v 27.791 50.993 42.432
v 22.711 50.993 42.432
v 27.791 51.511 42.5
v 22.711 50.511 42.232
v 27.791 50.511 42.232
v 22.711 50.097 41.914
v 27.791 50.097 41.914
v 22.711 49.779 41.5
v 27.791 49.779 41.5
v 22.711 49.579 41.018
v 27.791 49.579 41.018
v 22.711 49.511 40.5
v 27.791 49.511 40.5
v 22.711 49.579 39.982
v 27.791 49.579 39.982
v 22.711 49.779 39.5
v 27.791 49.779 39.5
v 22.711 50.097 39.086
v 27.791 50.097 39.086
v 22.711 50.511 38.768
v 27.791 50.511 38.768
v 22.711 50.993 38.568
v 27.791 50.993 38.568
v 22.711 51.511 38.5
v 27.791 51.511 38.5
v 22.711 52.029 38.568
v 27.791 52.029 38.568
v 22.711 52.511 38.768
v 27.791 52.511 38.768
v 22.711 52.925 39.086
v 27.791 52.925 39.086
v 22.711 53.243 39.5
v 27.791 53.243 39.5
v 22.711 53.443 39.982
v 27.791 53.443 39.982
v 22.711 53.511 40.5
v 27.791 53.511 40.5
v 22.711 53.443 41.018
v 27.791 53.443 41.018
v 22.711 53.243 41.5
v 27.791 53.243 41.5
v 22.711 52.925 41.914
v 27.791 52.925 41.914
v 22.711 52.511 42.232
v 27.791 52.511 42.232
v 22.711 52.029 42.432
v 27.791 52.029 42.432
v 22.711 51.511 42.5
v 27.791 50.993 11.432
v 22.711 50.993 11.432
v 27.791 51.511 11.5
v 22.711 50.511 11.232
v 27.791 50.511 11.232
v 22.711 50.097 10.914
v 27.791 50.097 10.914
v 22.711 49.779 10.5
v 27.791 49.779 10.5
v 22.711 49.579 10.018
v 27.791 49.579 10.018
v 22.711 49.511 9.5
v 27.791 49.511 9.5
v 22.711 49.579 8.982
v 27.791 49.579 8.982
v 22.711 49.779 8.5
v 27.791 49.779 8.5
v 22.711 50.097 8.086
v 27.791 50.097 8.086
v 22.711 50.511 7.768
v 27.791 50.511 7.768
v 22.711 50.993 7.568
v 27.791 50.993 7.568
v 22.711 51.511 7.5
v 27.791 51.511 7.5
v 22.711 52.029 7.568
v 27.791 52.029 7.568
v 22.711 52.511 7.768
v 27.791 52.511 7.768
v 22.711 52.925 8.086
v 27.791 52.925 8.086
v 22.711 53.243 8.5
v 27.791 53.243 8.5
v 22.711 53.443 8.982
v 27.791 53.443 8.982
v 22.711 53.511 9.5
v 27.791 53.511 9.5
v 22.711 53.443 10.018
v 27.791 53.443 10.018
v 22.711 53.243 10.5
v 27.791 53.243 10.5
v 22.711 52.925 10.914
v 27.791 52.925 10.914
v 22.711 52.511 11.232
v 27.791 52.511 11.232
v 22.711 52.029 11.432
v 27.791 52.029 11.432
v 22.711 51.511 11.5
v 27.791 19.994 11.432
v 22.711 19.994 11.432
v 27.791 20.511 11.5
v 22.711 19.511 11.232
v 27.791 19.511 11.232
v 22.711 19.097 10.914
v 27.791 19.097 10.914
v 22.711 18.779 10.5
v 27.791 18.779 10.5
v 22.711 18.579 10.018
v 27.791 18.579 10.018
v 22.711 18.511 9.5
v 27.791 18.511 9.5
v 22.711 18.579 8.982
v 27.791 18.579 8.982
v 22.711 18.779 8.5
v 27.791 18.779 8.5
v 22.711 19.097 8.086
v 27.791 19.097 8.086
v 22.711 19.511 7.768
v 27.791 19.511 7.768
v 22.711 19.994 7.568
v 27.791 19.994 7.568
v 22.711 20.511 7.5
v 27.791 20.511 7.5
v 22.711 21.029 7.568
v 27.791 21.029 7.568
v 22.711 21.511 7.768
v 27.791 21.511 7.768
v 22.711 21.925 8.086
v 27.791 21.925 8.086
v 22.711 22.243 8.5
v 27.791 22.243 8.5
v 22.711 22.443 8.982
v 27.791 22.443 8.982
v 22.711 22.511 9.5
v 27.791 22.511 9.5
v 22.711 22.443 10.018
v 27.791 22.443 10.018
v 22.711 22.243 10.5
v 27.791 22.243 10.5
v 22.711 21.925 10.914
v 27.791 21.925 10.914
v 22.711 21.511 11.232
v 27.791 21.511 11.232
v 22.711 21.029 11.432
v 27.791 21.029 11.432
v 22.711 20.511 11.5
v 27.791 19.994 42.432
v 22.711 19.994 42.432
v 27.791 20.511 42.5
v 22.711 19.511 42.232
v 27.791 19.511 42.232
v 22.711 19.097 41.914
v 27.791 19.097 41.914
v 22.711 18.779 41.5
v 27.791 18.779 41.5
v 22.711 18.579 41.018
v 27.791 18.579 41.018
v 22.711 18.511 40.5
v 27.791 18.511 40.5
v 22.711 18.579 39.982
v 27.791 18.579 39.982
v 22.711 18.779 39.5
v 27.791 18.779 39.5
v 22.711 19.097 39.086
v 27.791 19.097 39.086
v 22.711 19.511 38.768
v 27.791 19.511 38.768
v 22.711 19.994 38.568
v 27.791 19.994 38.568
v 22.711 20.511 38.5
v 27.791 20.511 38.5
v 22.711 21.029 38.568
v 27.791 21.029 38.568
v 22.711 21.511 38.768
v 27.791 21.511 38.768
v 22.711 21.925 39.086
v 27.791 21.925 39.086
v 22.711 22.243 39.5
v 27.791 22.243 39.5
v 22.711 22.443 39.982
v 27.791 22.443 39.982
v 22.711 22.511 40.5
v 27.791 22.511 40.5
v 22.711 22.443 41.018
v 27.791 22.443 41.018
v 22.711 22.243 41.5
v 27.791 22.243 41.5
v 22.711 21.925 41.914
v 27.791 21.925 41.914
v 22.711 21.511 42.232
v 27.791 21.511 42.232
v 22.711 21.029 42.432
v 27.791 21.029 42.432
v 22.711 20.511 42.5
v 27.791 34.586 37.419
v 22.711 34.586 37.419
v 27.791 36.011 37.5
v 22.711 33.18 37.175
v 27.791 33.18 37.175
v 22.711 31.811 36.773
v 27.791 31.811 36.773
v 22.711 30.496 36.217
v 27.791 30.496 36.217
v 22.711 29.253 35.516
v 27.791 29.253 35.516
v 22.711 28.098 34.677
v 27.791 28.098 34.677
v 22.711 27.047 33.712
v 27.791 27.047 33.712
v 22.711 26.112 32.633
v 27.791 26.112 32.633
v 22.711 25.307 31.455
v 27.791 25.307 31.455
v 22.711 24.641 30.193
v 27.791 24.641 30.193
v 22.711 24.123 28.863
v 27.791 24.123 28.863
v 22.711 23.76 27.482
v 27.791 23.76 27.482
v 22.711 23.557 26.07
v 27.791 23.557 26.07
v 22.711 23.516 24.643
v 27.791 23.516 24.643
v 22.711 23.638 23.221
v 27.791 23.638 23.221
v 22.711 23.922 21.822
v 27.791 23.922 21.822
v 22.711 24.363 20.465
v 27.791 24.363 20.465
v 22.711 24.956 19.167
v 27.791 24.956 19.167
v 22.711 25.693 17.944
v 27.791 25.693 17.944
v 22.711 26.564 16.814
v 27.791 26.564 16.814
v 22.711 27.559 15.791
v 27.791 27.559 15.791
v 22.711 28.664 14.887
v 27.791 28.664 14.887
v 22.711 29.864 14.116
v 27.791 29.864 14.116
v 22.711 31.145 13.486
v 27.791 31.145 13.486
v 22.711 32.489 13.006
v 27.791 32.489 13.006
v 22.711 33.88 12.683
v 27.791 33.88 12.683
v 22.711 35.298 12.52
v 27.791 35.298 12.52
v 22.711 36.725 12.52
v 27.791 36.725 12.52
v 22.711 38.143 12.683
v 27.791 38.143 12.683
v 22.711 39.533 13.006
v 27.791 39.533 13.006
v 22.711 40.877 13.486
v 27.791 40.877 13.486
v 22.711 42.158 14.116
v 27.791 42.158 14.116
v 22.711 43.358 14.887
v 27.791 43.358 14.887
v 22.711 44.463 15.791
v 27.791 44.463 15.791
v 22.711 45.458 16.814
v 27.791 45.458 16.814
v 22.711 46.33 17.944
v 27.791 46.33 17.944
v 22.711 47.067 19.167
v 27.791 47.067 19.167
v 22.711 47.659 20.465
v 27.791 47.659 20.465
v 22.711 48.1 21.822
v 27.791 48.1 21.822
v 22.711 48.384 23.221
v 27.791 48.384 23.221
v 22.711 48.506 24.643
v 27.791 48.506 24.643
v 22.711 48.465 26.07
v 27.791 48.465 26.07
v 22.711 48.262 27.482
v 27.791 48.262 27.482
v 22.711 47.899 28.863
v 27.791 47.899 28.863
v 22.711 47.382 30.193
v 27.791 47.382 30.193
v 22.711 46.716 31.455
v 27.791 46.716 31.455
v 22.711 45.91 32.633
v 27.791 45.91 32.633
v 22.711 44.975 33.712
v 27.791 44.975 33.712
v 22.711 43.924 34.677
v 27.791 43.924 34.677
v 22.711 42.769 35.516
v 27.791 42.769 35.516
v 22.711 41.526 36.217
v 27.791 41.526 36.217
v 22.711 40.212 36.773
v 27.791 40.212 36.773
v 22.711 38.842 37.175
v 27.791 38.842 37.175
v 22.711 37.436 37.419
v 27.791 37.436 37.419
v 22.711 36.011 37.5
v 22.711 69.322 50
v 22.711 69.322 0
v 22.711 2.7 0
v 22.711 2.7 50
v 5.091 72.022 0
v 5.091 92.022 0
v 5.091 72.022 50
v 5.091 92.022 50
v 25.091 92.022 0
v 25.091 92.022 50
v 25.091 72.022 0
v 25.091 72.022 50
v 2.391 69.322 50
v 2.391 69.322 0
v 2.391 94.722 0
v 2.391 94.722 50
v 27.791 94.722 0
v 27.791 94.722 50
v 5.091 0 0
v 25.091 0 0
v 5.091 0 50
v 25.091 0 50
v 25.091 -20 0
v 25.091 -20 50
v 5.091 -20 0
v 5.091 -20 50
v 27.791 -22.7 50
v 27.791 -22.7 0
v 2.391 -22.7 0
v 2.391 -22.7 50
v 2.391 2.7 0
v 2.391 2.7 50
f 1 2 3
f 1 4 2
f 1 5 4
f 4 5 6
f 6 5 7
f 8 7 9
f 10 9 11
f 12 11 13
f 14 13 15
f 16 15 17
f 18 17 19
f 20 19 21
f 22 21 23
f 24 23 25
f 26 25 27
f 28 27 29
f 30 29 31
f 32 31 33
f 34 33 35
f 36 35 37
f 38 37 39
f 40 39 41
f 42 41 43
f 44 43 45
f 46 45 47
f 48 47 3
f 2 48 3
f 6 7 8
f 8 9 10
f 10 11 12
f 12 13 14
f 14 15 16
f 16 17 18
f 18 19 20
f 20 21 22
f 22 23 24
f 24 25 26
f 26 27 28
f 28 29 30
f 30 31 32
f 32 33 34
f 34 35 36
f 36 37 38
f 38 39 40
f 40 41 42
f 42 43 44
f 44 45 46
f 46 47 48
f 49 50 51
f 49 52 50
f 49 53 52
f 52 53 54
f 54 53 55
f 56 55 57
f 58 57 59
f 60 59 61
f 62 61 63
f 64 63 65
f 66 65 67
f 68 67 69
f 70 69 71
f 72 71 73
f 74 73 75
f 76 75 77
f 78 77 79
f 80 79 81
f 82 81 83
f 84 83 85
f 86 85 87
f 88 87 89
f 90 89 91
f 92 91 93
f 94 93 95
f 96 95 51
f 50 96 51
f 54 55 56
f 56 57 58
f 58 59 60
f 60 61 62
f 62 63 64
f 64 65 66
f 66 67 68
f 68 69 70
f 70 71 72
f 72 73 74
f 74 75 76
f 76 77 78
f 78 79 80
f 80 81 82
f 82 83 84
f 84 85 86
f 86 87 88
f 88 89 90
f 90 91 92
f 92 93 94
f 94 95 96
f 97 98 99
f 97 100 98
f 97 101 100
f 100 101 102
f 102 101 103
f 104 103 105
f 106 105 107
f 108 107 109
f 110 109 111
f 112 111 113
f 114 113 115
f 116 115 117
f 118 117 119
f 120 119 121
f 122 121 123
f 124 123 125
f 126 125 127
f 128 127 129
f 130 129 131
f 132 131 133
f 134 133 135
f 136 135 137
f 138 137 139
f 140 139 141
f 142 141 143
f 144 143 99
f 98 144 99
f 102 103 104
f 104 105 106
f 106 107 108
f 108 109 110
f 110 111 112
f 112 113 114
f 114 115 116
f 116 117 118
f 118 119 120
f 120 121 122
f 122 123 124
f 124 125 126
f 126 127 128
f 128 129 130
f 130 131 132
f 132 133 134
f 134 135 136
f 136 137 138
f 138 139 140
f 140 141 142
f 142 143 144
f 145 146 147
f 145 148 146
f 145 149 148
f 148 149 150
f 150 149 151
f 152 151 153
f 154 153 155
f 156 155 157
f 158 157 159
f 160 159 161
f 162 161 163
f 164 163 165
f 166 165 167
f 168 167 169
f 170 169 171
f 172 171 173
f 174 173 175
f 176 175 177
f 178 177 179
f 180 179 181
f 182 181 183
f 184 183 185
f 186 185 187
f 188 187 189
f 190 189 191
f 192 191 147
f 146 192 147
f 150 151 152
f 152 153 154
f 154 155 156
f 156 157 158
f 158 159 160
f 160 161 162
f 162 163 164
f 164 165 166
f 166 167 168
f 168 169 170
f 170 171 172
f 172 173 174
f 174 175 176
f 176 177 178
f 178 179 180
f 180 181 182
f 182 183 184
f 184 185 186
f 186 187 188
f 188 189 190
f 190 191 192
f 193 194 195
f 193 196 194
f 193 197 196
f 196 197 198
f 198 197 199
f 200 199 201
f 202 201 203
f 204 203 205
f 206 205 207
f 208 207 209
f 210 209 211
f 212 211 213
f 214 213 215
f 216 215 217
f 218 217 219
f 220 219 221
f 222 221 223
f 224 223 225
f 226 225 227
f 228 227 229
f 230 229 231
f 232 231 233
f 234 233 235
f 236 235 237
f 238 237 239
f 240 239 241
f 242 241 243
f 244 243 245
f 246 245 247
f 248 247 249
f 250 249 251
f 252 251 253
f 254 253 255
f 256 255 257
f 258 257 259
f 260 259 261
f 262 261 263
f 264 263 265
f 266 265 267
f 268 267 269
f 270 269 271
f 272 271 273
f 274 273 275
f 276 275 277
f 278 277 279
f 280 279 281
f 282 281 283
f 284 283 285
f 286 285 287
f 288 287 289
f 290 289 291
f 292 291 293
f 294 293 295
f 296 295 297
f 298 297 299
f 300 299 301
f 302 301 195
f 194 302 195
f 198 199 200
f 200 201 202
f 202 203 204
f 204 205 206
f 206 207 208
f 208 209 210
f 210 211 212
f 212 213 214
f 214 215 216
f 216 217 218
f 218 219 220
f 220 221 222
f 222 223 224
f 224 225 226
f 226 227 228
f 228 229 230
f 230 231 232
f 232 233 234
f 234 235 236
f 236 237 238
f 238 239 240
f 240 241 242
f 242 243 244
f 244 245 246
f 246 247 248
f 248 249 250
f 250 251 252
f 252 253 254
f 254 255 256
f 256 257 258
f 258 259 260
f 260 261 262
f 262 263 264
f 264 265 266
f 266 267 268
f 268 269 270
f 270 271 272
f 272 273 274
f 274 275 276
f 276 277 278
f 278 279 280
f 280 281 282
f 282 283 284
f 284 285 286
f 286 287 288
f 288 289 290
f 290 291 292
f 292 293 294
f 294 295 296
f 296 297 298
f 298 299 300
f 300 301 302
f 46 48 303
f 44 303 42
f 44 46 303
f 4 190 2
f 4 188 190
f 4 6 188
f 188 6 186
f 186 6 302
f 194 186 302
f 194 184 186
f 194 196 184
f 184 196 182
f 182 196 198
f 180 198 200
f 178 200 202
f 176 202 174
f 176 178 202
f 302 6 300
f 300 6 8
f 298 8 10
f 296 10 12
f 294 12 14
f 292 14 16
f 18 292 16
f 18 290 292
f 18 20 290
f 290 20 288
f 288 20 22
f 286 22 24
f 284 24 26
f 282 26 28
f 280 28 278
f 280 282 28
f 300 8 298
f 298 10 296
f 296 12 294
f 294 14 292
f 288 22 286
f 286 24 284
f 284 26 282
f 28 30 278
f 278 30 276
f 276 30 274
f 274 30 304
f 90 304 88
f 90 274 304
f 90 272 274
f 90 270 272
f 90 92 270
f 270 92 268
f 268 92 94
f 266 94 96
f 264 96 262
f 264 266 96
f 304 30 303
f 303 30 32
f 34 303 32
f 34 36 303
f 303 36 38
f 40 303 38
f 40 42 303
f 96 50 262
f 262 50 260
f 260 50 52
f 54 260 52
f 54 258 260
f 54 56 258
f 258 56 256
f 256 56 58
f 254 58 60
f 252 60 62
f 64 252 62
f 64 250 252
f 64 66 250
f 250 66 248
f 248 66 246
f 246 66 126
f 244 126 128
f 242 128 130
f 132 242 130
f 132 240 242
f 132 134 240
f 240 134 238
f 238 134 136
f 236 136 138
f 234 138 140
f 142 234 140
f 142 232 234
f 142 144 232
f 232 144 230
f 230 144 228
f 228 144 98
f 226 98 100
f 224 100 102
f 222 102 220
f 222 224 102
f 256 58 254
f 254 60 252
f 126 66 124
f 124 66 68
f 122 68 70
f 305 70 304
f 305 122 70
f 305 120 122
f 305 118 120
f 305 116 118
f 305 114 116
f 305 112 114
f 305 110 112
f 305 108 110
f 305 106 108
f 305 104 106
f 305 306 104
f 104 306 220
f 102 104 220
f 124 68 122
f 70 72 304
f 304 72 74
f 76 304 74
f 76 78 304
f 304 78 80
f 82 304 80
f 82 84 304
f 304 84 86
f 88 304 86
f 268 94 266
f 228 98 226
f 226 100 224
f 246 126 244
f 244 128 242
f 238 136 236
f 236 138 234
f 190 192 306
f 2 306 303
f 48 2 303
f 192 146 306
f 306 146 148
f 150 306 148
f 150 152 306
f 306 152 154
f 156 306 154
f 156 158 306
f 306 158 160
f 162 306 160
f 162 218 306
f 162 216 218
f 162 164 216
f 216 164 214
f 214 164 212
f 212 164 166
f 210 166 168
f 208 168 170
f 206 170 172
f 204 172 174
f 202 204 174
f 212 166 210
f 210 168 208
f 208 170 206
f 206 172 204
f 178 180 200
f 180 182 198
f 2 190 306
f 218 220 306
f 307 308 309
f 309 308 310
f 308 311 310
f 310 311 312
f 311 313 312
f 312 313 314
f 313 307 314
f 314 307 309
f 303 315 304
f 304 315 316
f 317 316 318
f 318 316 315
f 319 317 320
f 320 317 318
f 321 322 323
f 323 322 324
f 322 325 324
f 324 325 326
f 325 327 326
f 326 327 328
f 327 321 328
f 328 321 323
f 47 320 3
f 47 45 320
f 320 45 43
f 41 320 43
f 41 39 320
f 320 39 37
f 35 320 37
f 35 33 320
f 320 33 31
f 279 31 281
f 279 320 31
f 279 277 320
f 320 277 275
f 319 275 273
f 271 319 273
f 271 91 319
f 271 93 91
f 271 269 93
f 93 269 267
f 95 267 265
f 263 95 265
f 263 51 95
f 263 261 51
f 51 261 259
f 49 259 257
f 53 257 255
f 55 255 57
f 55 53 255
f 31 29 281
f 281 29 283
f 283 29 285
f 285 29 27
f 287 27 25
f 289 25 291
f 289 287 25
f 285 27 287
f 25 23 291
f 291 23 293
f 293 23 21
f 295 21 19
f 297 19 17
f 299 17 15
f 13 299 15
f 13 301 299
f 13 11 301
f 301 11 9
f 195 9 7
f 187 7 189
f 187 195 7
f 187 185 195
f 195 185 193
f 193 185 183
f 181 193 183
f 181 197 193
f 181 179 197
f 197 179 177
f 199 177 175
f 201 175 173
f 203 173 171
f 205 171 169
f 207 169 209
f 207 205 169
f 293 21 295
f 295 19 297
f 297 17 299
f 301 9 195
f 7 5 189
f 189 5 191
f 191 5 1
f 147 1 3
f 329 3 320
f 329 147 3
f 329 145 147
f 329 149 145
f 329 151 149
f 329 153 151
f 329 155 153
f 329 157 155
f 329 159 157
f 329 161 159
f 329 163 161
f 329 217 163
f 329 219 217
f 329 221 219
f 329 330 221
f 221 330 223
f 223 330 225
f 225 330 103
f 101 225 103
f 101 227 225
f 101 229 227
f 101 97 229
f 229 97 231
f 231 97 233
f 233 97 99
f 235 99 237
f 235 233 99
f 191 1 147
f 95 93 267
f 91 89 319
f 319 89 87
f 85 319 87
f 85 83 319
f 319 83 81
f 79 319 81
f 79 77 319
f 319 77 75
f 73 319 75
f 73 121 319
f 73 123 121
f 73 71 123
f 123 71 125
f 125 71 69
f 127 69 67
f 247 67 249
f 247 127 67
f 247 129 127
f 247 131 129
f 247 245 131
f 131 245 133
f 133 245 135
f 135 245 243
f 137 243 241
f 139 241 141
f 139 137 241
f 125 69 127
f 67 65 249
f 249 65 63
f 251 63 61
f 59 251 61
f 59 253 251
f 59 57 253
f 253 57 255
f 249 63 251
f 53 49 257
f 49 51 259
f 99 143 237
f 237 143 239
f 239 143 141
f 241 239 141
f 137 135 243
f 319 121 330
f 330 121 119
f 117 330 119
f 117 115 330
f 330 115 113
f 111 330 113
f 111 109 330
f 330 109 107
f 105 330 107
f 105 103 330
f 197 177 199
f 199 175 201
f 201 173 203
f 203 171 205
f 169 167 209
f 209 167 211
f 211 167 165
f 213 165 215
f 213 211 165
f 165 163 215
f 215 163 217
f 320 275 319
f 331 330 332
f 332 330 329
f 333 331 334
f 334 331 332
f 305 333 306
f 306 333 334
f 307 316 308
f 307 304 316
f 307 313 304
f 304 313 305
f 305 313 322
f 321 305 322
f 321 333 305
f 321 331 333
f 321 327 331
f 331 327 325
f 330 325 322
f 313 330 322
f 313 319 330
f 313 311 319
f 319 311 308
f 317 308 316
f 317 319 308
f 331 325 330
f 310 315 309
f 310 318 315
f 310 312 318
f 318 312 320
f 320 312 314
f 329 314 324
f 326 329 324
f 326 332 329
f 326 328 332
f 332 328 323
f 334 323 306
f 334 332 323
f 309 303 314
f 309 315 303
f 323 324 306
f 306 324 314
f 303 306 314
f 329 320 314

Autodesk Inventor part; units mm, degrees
ref_plane "YZ Plane" through (0, 0, 0) normal (1, 0, 0) x (0, 1, 0)
ref_plane "XZ Plane" through (0, 0, 0) normal (0, 1, 0) x (-1, 0, 0)
ref_plane "XY Plane" through (0, 0, 0) normal (0, 0, 1) x (1, 0, 0)
ref_plane "Work Plane1" through (0, 0, 0) normal (0, 0, 1) x (1, 0, 0)
sketch "Sketch1" plane through (0, 0, 0) normal (0, 0, 1) x (1, 0, 0)
  line L0 (5.0907, -20) -> (5.0907, 0) projected
  line L1 (25.0907, -20) -> (5.0907, -20) projected
  line L2 (25.0907, 0) -> (25.0907, -20) projected
  line L3 (5.0907, 0) -> (25.0907, 0) projected
  line L4 (5.0907, 71.5801) -> (25.0907, 71.5801) projected
  line L5 (5.0907, 91.5801) -> (25.0907, 91.5801) projected
  line L6 (5.0907, 91.5801) -> (5.0907, 71.5801) projected
  line L7 (24.826, 92.0223) -> (24.826, 72.0223) projected
  line L8 (2.3907, 2.7) -> (27.7907, 2.7)
  line L9 (27.7907, 2.7) -> (27.7907, -22.7)
  line L10 (27.7907, -22.7) -> (2.3907, -22.7)
  line L11 (2.3907, -22.7) -> (2.3907, 2.7)
  line L12 (2.3907, 2.7) -> (27.7907, -22.7) construction
  line L13 (27.7907, 2.7) -> (2.3907, -22.7) construction
  line L14 (2.3907, 94.7223) -> (27.7907, 94.7223)
  line L15 (27.7907, 94.7223) -> (27.7907, 69.3223)
  line L16 (27.7907, 69.3223) -> (2.3907, 69.3223)
  line L17 (2.3907, 69.3223) -> (2.3907, 94.7223)
  line L18 (2.3907, 94.7223) -> (27.7907, 69.3223) construction
  line L19 (27.7907, 94.7223) -> (2.3907, 69.3223) construction
  line L20 (25.0907, 72.0223) -> (5.0907, 72.0223)
  line L21 (5.0907, 72.0223) -> (5.0907, 92.0223)
  line L22 (5.0907, 92.0223) -> (25.0907, 92.0223)
  line L23 (25.0907, 92.0223) -> (25.0907, 72.0223)
  line L24 (25.0907, 72.0223) -> (5.0907, 92.0223) construction
  line L25 (5.0907, 72.0223) -> (25.0907, 92.0223) construction
  point P0 (0, 0)
  point P1 (15.0907, -10)
  point P2 (15.0907, 82.0223)
  dimension "d0" = 25.4
  dimension "d1" = 25.4
  dimension "d2" = 25.4
  dimension "d3" = 25.4
  dimension "d4" = 20
  dimension "d5" = 20
extrude "Extrusion1" add sketch "Sketch1" along normal blind 50
sketch "Sketch2" plane through (27.7907, 69.3223, 0) normal (1, 0, 0) x (0, 0, -1)
  line L0 (0, 25.4) -> (0, 0) projected
  line L1 (0, 25.4) -> (-50, 25.4) projected
  line L2 (-50, 0) -> (-50, 25.4) projected
  line L3 (0, 0) -> (-50, 0) projected
  line L4 (0, -66.6223) -> (0, -92.0223) projected
  line L5 (0, -66.6223) -> (-50, -66.6223) projected
  line L6 (-50, -92.0223) -> (-50, -66.6223) projected
  line L7 (0, -92.0223) -> (-50, -92.0223) projected
  line L8 (0, 25.4) -> (-50, 25.4) projected
  line L9 (0, 25.4) -> (-50, 25.4)
  line L10 (-50, 25.4) -> (-50, -92.0223)
  line L11 (-50, -92.0223) -> (0, -92.0223)
  line L12 (0, -92.0223) -> (0, 25.4)
  point P0 (0, -69.3223)
extrude "Extrusion2" add sketch "Sketch2" against normal blind 5.08 contours L12 L5 L10 L3
sketch "Sketch3" plane through (22.7107, 69.3223, 0) normal (-1, 0, 0) x (0, 0, 1)
  line L0 (0, 25.4) -> (0, -92.0223) projected
  line L1 (0, 25.4) -> (50, 25.4) projected
  line L2 (50, -92.0223) -> (50, 25.4) projected
  line L3 (0, -92.0223) -> (50, -92.0223) projected
  circle A0 centre (25, -33.3111) radius 12.5
  line L4 (25, -33.3111) -> (9.5, -33.3111)
  line L5 (9.5, -33.3111) -> (9.5, -48.8111)
  circle A1 centre (9.5, -48.8111) radius 2
  circle A2 centre (9.5, -17.8111) radius 2
  circle A3 centre (40.5, -48.8111) radius 2
  circle A4 centre (40.5, -17.8111) radius 2
  point P0 (0, -69.3223)
  dimension "d10" = 25
  dimension "d11" = 15.5
  dimension "d12" = 15.5
  dimension "d13" = 4
  dimension "d16" = 31
  dimension "d19" = 31
extrude "Extrusion3" cut sketch "Sketch3" against normal blind 5.08 contours A0 | A1 | A2 | A3 | A4
properties part number "ExtruderMount"
